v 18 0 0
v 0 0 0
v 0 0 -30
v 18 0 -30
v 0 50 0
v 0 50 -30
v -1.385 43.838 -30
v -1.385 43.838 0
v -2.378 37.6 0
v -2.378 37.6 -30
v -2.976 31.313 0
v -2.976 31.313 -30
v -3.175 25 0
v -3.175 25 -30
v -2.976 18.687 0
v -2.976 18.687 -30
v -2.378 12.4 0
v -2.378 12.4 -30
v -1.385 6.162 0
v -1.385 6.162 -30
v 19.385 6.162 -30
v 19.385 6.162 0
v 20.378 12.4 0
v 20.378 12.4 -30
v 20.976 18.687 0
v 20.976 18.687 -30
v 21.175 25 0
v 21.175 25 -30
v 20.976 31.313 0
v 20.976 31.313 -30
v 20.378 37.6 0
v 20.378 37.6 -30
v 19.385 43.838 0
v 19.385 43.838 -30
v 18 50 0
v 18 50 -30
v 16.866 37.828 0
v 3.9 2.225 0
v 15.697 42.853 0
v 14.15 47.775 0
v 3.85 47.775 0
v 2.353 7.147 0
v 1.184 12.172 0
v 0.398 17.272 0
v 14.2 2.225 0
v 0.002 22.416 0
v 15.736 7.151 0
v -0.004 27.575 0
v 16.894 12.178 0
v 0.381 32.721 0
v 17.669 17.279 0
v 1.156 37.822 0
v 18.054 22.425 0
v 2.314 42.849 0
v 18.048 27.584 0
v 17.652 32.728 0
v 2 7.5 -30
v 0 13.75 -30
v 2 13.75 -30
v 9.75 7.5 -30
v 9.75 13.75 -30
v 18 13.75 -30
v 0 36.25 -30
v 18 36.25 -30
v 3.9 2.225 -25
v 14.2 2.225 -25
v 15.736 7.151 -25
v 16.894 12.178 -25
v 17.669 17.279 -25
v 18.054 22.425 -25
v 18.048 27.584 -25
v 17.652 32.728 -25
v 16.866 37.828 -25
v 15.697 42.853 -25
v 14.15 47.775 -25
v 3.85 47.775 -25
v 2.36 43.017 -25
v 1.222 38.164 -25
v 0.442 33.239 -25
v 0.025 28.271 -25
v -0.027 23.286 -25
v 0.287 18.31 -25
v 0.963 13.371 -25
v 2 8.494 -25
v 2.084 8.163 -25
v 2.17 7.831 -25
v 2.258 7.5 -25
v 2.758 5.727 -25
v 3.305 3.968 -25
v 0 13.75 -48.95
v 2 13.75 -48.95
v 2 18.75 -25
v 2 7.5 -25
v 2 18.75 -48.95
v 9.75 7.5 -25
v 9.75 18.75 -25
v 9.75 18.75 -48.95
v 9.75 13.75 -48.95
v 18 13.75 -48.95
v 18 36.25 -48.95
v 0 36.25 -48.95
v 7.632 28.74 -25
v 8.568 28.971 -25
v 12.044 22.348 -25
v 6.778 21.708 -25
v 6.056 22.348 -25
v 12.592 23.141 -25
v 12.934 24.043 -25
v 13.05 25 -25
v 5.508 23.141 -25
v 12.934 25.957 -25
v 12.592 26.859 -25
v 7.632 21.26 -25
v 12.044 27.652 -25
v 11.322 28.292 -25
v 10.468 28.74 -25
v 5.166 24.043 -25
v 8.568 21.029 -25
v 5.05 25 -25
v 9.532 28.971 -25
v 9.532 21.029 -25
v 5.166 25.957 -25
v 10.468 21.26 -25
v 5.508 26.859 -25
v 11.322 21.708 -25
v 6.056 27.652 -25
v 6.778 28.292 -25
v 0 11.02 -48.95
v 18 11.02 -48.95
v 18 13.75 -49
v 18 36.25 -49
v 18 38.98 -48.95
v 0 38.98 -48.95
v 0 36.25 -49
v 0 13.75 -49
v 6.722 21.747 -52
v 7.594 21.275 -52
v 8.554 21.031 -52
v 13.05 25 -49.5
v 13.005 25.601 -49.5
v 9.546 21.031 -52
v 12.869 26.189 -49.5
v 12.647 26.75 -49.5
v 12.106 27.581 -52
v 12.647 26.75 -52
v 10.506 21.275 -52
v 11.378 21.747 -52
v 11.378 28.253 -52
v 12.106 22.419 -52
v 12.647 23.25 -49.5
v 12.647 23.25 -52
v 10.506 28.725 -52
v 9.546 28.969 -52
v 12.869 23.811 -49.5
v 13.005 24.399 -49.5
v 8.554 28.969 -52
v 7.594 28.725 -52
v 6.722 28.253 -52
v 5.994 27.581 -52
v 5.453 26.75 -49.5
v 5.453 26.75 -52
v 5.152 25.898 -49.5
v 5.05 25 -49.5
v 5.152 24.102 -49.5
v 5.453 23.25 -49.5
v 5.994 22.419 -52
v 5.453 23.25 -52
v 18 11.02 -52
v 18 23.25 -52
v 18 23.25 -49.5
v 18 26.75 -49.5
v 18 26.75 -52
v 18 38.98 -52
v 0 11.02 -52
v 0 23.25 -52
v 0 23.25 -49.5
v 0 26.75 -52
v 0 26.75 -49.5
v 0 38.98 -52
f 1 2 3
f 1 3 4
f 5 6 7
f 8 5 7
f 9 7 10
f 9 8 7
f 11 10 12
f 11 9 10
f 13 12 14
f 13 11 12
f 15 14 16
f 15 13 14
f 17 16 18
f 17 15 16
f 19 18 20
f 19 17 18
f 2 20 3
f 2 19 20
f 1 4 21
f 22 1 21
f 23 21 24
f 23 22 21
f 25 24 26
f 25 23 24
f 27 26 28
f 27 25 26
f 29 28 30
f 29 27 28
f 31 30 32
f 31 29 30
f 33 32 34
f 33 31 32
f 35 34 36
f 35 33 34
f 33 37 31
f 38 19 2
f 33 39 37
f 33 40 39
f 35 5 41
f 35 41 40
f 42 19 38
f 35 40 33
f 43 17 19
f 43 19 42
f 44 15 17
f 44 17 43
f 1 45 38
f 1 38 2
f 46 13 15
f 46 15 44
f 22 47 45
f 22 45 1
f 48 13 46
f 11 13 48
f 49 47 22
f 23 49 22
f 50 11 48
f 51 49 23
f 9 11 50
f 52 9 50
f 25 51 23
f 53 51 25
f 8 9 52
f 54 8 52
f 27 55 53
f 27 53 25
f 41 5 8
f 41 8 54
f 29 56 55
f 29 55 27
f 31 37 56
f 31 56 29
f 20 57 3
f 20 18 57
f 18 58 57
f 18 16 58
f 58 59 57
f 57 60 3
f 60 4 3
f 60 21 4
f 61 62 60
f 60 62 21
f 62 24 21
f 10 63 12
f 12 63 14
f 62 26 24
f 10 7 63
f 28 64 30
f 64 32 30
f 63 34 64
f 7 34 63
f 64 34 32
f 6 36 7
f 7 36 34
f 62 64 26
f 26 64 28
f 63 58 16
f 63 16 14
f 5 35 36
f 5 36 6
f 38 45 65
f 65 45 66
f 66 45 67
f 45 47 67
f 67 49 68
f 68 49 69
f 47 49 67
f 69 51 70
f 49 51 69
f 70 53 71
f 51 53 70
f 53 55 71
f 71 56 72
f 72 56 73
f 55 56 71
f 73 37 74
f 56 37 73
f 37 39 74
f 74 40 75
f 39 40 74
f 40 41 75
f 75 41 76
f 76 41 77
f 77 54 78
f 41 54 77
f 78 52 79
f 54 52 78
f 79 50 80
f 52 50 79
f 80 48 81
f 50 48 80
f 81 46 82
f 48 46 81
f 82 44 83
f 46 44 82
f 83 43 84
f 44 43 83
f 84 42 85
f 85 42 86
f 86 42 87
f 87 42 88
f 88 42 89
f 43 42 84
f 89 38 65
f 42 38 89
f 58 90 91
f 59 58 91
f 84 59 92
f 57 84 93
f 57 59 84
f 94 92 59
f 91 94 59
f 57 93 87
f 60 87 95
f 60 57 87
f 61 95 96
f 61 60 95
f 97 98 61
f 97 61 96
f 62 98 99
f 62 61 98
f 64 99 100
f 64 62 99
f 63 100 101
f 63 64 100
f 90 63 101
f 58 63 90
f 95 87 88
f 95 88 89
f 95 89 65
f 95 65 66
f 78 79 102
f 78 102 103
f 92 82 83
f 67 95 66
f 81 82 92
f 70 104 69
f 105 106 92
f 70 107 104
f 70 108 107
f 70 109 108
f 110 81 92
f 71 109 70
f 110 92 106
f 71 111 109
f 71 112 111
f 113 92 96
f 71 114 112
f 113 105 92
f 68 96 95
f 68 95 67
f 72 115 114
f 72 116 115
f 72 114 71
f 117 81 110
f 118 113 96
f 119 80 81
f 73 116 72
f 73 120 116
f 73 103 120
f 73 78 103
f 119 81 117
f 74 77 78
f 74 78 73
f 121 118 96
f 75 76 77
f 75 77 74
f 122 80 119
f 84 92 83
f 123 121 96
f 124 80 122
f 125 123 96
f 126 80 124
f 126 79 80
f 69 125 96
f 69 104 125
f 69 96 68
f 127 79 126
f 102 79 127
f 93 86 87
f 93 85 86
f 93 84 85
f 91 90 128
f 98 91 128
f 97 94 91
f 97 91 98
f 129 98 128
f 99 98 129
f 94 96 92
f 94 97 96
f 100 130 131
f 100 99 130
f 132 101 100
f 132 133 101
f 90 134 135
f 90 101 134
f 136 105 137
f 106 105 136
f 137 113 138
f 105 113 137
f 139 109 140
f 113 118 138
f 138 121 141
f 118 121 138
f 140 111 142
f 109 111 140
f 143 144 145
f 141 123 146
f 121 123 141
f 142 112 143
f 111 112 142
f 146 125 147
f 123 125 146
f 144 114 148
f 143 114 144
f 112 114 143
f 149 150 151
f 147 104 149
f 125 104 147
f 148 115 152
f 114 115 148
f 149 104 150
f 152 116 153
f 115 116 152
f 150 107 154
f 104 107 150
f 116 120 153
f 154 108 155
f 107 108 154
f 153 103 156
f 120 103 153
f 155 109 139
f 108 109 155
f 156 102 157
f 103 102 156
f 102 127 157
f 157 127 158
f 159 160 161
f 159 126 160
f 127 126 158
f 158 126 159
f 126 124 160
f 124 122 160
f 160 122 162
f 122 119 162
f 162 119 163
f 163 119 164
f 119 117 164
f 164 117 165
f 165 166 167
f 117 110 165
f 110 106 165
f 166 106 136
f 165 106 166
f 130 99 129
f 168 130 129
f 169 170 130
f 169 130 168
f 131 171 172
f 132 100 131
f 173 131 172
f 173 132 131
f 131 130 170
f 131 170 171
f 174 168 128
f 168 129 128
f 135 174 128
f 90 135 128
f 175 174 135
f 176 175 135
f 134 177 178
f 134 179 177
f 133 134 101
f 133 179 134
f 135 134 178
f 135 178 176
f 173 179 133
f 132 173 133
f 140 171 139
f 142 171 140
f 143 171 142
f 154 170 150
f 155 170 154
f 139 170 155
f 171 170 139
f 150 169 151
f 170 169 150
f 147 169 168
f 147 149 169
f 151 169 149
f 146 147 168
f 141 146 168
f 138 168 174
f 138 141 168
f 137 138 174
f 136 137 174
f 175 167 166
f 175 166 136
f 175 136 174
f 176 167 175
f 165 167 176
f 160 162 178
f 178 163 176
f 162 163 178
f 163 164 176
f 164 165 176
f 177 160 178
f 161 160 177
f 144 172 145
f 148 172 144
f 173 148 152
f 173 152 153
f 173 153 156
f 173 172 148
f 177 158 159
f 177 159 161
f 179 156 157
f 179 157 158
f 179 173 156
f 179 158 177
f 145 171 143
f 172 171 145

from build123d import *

# Parameters (mm, degrees)
PAD_DEPTH            = 30
POCKET_DEPTH         = 25
SKETCH004_W          = 18
SKETCH004_H          = 22.5
PAD001_DEPTH         = 19
SKETCH003_W          = 7.75
SKETCH003_H          = 11.25
POCKET002_DEPTH      = 5
POCKET002_DEPTH_BACK = 24
SKETCH005_W          = 18
SKETCH005_H          = 3.05
PAD002_DEPTH         = 2.73
PAD002_DEPTH_BACK    = 25.23
SKETCH006_W          = 3.5
SKETCH006_H          = 2.5
POCKET003_DEPTH      = 18
SKETCH002_R          = 4
POCKET001_DEPTH      = 35
POCKET001_DEPTH_BACK = 5


with BuildPart() as part:
    # Sketch → Pad (new body)
    with BuildSketch(Plane.XY):
        with BuildLine():
            Line((0, 0), (18, 0))
            ThreePointArc((18, 0), (21.175416, 25), (18, 50))
            Line((18, 50), (0, 50))
            ThreePointArc((0, 50), (-3.175416, 25), (0, 0))
        make_face()
    extrude(amount=-PAD_DEPTH)

    # Sketch001 → Pocket (cut)
    with BuildSketch(Plane.XY):
        with BuildLine():
            Line((3.9, 2.225), (14.2, 2.225))
            ThreePointArc((14.2, 2.225), (18.099995, 25.004308), (14.15, 47.775))
            Line((14.15, 47.775), (3.85, 47.775))
            ThreePointArc((3.85, 47.775), (-0.049995, 24.995692), (3.9, 2.225))
        make_face()
    extrude(amount=-POCKET_DEPTH, mode=Mode.SUBTRACT)

    # Sketch004 → Pad001 (join)
    with BuildSketch(Plane(origin=(0, 0, -30), x_dir=(1, 0, 0), z_dir=(0, 0, -1))):
        with Locations((9, -25)):
            Rectangle(SKETCH004_W, SKETCH004_H)
    extrude(amount=PAD001_DEPTH)

    # Sketch003 (on Face5 of Pocket001) → Pocket002 (cut, two sides)
    with BuildSketch(Plane(origin=(0, 0, -30), x_dir=(1, 0, 0), z_dir=(0, 0, -1))) as pocket002_sk:
        with Locations((5.875, -13.125)):
            Rectangle(SKETCH003_W, SKETCH003_H)
    extrude(amount=-POCKET002_DEPTH, mode=Mode.SUBTRACT)
    extrude(pocket002_sk.sketch, amount=POCKET002_DEPTH_BACK, mode=Mode.SUBTRACT)

    # Sketch005 (on Face11 of Pocket001) → Pad002 (join, two sides)
    with BuildSketch(Plane.XZ.offset(-13.75)) as pad002_sk:
        with Locations((9, -50.475)):
            Rectangle(SKETCH005_W, SKETCH005_H)
    extrude(amount=PAD002_DEPTH)
    extrude(pad002_sk.sketch, amount=-PAD002_DEPTH_BACK)

    # Sketch006 (on Face16 of Pocket001) → Pocket003 (cut)
    with BuildSketch(Plane.YZ.offset(18)):
        with Locations((25, -50.75)):
            Rectangle(SKETCH006_W, SKETCH006_H)
    extrude(amount=-POCKET003_DEPTH, mode=Mode.SUBTRACT)

    # Sketch002 (on Face11 of Pocket) → Pocket001 (cut, two sides)
    with BuildSketch(Plane.XY.offset(-25)) as pocket001_sk:
        with Locations((9.05, 25)):
            Circle(SKETCH002_R)
    extrude(amount=-POCKET001_DEPTH, mode=Mode.SUBTRACT)
    extrude(pocket001_sk.sketch, amount=POCKET001_DEPTH_BACK, mode=Mode.SUBTRACT)


solid = part.part
